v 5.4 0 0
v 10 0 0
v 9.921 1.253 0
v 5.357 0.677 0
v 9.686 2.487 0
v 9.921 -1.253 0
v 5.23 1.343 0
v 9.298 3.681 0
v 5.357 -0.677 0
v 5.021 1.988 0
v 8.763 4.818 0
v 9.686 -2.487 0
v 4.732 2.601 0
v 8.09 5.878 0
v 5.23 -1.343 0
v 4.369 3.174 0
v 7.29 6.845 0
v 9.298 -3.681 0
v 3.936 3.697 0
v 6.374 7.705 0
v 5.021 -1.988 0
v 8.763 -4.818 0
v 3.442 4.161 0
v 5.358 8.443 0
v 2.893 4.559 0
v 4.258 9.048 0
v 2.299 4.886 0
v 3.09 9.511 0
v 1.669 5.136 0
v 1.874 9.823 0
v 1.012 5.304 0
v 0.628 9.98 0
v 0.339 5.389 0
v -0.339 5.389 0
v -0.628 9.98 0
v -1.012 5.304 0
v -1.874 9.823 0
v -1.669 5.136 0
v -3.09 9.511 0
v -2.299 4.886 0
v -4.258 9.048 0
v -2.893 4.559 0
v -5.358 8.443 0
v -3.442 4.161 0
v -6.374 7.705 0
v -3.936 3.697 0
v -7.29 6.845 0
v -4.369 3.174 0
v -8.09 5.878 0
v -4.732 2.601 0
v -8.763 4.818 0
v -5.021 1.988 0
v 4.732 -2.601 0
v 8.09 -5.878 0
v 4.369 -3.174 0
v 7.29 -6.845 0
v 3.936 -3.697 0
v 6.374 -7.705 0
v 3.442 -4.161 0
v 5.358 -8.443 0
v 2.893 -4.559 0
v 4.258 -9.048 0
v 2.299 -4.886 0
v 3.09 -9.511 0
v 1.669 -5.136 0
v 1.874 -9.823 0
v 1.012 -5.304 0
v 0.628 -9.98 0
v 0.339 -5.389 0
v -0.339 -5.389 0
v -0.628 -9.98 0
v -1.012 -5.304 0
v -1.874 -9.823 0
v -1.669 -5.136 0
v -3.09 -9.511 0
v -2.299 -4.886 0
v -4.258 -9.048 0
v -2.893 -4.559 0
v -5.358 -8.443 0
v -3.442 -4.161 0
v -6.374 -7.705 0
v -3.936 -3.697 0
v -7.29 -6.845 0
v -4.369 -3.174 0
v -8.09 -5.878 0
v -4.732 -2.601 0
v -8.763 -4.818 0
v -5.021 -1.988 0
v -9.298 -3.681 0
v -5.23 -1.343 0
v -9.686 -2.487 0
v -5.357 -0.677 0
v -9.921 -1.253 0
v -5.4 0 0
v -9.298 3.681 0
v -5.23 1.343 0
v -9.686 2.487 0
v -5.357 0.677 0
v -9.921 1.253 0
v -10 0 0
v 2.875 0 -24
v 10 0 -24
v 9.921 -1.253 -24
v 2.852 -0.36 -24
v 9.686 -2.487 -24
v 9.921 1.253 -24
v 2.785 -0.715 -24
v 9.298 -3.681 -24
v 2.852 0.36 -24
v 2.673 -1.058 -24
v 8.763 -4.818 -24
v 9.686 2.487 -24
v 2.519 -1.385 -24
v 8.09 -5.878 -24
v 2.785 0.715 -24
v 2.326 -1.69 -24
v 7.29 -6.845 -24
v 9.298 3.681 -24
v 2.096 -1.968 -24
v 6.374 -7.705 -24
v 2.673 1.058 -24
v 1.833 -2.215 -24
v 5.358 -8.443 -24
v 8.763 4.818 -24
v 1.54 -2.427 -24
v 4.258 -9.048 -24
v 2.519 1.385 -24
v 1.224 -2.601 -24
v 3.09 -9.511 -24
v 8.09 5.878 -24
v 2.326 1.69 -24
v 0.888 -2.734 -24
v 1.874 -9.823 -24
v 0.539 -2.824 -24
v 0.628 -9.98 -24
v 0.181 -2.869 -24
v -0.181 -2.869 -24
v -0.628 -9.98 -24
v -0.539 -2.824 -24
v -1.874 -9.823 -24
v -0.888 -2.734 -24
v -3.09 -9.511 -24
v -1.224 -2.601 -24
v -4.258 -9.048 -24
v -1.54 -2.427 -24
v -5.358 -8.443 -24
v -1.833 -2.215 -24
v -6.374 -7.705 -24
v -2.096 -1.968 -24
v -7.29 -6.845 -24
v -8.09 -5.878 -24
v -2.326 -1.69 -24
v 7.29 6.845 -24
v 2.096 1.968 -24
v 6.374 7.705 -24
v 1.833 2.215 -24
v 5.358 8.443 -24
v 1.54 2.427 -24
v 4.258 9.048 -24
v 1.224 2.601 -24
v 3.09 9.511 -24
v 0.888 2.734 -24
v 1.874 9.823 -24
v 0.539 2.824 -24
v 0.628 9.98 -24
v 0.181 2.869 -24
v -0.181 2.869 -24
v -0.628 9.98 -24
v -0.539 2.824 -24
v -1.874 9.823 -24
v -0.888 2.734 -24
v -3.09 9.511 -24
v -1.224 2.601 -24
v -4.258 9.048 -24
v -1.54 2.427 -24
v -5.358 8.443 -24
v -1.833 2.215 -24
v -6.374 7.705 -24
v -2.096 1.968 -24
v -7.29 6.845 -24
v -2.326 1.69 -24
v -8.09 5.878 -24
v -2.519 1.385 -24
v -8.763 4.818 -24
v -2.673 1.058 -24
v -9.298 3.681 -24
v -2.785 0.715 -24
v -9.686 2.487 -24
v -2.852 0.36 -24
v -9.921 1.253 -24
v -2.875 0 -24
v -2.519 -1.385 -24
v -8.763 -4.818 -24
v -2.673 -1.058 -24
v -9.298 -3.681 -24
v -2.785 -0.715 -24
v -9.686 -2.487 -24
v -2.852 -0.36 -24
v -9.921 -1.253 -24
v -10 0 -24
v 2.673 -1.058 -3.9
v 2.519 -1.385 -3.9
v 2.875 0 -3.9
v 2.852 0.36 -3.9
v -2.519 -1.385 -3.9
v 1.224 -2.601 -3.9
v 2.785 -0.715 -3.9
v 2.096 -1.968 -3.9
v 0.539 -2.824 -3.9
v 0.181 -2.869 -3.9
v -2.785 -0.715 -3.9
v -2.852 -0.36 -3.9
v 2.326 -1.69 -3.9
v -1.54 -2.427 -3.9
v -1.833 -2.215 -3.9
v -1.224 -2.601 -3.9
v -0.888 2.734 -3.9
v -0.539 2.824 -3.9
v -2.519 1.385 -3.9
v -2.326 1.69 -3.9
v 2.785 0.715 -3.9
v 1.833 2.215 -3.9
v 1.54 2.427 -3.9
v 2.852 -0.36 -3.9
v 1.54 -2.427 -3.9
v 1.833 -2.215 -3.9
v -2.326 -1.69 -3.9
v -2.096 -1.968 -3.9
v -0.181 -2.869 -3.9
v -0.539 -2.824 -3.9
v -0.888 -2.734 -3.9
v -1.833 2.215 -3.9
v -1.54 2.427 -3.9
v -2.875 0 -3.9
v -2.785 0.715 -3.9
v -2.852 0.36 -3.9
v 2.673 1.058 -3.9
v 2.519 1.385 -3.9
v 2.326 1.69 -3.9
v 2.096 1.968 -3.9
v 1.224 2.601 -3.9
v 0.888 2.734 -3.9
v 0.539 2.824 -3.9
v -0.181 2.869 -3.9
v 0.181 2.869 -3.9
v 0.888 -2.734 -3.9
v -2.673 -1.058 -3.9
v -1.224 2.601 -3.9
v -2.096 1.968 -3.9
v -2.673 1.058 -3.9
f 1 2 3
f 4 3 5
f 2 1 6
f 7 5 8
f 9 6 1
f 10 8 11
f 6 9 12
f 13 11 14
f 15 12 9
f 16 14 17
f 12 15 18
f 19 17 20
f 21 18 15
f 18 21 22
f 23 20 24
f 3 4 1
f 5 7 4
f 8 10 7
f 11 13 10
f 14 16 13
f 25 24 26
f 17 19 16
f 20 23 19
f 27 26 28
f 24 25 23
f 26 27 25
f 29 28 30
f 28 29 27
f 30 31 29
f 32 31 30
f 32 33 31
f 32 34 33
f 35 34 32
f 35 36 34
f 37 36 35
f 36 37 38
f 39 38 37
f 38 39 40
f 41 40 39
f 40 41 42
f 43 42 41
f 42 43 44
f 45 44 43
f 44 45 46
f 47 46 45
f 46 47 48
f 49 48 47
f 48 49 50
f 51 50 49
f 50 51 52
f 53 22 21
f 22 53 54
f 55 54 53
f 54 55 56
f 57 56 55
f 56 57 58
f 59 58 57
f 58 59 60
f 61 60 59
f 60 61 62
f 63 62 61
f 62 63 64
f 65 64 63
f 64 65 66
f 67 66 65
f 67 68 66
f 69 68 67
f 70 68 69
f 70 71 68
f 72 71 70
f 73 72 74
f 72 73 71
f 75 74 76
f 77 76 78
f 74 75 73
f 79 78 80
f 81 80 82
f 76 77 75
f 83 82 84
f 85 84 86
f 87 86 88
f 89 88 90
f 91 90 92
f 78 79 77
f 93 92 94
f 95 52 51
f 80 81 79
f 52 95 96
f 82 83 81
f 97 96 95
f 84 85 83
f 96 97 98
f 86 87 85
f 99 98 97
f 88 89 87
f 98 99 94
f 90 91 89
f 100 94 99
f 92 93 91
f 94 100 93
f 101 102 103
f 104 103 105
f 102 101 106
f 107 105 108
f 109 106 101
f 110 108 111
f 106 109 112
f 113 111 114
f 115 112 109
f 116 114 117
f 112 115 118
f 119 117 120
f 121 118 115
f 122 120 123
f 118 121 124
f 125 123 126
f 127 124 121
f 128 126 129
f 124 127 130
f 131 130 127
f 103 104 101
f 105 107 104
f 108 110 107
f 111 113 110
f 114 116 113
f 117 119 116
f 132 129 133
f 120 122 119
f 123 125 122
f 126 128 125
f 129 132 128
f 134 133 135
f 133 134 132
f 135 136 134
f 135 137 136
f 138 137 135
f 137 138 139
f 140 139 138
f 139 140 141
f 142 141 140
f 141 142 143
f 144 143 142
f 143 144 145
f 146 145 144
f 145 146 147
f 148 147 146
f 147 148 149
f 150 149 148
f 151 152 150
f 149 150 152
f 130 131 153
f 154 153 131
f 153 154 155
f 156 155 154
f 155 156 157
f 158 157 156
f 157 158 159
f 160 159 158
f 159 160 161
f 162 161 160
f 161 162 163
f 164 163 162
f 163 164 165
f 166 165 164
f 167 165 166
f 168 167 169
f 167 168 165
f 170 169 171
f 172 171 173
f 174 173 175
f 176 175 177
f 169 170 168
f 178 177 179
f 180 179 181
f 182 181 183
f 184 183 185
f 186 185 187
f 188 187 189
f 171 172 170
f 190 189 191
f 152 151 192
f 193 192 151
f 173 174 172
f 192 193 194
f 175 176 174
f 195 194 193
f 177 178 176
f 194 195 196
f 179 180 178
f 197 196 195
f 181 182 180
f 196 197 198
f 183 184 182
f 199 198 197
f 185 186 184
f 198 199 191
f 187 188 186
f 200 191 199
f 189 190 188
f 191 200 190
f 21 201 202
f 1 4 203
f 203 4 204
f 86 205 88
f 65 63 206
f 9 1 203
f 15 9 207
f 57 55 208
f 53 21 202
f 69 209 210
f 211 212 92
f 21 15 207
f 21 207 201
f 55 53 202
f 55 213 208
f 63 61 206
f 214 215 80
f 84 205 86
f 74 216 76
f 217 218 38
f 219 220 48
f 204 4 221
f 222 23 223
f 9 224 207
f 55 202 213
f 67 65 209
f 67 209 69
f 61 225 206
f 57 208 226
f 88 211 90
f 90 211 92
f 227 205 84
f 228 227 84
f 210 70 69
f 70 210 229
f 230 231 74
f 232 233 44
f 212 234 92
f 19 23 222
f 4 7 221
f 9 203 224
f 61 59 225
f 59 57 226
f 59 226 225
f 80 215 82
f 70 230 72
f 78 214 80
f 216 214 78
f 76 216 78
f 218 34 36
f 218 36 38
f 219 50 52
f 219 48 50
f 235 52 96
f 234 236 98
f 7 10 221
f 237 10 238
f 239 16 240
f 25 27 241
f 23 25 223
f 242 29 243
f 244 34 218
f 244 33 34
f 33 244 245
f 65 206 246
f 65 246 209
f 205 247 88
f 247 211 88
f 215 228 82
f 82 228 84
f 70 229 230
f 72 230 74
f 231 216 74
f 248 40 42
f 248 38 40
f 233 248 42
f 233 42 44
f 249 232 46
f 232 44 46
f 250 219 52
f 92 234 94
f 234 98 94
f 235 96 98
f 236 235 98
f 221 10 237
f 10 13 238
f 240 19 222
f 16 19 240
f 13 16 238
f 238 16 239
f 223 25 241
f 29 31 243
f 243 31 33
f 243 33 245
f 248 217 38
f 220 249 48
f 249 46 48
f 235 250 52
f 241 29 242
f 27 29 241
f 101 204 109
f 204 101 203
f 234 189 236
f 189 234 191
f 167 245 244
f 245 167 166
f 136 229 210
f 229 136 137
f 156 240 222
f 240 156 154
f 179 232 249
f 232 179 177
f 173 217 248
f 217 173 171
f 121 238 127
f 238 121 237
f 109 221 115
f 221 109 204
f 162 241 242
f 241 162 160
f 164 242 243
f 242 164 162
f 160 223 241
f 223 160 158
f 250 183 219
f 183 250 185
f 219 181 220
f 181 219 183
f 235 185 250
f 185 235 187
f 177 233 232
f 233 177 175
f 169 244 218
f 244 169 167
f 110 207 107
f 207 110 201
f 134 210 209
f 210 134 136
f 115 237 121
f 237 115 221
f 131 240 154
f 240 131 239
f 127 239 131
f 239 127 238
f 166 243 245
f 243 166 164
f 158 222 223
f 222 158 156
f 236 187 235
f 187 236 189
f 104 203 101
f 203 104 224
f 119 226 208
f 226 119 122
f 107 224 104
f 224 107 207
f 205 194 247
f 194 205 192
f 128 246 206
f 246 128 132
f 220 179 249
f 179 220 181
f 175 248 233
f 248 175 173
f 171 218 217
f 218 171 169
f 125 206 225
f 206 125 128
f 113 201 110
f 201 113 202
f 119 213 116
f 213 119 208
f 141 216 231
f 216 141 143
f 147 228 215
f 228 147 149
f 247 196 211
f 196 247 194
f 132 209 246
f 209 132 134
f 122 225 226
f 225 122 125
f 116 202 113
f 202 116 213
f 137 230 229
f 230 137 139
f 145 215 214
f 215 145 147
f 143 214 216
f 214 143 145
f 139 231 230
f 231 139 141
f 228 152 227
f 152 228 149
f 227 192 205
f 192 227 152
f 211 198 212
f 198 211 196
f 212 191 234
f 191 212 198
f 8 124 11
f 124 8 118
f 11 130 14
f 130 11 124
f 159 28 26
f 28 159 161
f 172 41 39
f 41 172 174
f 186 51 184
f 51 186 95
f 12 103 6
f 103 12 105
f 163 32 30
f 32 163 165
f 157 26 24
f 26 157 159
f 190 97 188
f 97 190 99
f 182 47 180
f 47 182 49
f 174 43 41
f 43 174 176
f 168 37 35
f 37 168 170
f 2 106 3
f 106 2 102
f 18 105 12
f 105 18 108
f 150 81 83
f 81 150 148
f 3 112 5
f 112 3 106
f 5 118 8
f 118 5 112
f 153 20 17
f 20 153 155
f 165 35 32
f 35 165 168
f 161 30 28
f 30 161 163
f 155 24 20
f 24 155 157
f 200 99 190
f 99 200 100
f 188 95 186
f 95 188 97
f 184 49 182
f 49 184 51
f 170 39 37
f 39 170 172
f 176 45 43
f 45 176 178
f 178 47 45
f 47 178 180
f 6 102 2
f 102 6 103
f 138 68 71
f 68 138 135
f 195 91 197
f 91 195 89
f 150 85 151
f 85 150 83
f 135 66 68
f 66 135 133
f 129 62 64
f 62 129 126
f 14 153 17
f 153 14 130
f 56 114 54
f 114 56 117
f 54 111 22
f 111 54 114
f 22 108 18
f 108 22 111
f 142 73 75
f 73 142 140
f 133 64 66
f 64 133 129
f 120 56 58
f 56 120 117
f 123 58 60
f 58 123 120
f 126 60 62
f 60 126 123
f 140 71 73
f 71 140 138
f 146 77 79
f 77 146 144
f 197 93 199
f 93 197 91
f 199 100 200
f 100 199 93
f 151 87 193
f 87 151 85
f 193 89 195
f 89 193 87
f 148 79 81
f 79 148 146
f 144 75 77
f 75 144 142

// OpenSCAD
$fn = 50;


difference() {
	union() {
		translate(v = [0, 0, -24.0000000000]) {
			cylinder(h = 24, r = 10.0000000000);
		}
	}
	union() {
		translate(v = [0, 0, 0]) {
			rotate(a = [0, 0, 0]) {
				difference() {
					union() {
						#translate(v = [0, 0, -24.0000000000]) {
							cylinder(h = 24, r = 2.6000000000);
						}
						#translate(v = [0, 0, -3.9000000000]) {
							cylinder(h = 3.9000000000, r = 10.0000000000, r1 = 2.8750000000, r2 = 5.4000000000);
						}
						#translate(v = [0, 0, -24.0000000000]) {
							cylinder(h = 24, r = 2.8750000000);
						}
						#translate(v = [0, 0, -24.0000000000]) {
							cylinder(h = 24, r = 2.6000000000);
						}
					}
					union();
				}
			}
		}
	}
}
